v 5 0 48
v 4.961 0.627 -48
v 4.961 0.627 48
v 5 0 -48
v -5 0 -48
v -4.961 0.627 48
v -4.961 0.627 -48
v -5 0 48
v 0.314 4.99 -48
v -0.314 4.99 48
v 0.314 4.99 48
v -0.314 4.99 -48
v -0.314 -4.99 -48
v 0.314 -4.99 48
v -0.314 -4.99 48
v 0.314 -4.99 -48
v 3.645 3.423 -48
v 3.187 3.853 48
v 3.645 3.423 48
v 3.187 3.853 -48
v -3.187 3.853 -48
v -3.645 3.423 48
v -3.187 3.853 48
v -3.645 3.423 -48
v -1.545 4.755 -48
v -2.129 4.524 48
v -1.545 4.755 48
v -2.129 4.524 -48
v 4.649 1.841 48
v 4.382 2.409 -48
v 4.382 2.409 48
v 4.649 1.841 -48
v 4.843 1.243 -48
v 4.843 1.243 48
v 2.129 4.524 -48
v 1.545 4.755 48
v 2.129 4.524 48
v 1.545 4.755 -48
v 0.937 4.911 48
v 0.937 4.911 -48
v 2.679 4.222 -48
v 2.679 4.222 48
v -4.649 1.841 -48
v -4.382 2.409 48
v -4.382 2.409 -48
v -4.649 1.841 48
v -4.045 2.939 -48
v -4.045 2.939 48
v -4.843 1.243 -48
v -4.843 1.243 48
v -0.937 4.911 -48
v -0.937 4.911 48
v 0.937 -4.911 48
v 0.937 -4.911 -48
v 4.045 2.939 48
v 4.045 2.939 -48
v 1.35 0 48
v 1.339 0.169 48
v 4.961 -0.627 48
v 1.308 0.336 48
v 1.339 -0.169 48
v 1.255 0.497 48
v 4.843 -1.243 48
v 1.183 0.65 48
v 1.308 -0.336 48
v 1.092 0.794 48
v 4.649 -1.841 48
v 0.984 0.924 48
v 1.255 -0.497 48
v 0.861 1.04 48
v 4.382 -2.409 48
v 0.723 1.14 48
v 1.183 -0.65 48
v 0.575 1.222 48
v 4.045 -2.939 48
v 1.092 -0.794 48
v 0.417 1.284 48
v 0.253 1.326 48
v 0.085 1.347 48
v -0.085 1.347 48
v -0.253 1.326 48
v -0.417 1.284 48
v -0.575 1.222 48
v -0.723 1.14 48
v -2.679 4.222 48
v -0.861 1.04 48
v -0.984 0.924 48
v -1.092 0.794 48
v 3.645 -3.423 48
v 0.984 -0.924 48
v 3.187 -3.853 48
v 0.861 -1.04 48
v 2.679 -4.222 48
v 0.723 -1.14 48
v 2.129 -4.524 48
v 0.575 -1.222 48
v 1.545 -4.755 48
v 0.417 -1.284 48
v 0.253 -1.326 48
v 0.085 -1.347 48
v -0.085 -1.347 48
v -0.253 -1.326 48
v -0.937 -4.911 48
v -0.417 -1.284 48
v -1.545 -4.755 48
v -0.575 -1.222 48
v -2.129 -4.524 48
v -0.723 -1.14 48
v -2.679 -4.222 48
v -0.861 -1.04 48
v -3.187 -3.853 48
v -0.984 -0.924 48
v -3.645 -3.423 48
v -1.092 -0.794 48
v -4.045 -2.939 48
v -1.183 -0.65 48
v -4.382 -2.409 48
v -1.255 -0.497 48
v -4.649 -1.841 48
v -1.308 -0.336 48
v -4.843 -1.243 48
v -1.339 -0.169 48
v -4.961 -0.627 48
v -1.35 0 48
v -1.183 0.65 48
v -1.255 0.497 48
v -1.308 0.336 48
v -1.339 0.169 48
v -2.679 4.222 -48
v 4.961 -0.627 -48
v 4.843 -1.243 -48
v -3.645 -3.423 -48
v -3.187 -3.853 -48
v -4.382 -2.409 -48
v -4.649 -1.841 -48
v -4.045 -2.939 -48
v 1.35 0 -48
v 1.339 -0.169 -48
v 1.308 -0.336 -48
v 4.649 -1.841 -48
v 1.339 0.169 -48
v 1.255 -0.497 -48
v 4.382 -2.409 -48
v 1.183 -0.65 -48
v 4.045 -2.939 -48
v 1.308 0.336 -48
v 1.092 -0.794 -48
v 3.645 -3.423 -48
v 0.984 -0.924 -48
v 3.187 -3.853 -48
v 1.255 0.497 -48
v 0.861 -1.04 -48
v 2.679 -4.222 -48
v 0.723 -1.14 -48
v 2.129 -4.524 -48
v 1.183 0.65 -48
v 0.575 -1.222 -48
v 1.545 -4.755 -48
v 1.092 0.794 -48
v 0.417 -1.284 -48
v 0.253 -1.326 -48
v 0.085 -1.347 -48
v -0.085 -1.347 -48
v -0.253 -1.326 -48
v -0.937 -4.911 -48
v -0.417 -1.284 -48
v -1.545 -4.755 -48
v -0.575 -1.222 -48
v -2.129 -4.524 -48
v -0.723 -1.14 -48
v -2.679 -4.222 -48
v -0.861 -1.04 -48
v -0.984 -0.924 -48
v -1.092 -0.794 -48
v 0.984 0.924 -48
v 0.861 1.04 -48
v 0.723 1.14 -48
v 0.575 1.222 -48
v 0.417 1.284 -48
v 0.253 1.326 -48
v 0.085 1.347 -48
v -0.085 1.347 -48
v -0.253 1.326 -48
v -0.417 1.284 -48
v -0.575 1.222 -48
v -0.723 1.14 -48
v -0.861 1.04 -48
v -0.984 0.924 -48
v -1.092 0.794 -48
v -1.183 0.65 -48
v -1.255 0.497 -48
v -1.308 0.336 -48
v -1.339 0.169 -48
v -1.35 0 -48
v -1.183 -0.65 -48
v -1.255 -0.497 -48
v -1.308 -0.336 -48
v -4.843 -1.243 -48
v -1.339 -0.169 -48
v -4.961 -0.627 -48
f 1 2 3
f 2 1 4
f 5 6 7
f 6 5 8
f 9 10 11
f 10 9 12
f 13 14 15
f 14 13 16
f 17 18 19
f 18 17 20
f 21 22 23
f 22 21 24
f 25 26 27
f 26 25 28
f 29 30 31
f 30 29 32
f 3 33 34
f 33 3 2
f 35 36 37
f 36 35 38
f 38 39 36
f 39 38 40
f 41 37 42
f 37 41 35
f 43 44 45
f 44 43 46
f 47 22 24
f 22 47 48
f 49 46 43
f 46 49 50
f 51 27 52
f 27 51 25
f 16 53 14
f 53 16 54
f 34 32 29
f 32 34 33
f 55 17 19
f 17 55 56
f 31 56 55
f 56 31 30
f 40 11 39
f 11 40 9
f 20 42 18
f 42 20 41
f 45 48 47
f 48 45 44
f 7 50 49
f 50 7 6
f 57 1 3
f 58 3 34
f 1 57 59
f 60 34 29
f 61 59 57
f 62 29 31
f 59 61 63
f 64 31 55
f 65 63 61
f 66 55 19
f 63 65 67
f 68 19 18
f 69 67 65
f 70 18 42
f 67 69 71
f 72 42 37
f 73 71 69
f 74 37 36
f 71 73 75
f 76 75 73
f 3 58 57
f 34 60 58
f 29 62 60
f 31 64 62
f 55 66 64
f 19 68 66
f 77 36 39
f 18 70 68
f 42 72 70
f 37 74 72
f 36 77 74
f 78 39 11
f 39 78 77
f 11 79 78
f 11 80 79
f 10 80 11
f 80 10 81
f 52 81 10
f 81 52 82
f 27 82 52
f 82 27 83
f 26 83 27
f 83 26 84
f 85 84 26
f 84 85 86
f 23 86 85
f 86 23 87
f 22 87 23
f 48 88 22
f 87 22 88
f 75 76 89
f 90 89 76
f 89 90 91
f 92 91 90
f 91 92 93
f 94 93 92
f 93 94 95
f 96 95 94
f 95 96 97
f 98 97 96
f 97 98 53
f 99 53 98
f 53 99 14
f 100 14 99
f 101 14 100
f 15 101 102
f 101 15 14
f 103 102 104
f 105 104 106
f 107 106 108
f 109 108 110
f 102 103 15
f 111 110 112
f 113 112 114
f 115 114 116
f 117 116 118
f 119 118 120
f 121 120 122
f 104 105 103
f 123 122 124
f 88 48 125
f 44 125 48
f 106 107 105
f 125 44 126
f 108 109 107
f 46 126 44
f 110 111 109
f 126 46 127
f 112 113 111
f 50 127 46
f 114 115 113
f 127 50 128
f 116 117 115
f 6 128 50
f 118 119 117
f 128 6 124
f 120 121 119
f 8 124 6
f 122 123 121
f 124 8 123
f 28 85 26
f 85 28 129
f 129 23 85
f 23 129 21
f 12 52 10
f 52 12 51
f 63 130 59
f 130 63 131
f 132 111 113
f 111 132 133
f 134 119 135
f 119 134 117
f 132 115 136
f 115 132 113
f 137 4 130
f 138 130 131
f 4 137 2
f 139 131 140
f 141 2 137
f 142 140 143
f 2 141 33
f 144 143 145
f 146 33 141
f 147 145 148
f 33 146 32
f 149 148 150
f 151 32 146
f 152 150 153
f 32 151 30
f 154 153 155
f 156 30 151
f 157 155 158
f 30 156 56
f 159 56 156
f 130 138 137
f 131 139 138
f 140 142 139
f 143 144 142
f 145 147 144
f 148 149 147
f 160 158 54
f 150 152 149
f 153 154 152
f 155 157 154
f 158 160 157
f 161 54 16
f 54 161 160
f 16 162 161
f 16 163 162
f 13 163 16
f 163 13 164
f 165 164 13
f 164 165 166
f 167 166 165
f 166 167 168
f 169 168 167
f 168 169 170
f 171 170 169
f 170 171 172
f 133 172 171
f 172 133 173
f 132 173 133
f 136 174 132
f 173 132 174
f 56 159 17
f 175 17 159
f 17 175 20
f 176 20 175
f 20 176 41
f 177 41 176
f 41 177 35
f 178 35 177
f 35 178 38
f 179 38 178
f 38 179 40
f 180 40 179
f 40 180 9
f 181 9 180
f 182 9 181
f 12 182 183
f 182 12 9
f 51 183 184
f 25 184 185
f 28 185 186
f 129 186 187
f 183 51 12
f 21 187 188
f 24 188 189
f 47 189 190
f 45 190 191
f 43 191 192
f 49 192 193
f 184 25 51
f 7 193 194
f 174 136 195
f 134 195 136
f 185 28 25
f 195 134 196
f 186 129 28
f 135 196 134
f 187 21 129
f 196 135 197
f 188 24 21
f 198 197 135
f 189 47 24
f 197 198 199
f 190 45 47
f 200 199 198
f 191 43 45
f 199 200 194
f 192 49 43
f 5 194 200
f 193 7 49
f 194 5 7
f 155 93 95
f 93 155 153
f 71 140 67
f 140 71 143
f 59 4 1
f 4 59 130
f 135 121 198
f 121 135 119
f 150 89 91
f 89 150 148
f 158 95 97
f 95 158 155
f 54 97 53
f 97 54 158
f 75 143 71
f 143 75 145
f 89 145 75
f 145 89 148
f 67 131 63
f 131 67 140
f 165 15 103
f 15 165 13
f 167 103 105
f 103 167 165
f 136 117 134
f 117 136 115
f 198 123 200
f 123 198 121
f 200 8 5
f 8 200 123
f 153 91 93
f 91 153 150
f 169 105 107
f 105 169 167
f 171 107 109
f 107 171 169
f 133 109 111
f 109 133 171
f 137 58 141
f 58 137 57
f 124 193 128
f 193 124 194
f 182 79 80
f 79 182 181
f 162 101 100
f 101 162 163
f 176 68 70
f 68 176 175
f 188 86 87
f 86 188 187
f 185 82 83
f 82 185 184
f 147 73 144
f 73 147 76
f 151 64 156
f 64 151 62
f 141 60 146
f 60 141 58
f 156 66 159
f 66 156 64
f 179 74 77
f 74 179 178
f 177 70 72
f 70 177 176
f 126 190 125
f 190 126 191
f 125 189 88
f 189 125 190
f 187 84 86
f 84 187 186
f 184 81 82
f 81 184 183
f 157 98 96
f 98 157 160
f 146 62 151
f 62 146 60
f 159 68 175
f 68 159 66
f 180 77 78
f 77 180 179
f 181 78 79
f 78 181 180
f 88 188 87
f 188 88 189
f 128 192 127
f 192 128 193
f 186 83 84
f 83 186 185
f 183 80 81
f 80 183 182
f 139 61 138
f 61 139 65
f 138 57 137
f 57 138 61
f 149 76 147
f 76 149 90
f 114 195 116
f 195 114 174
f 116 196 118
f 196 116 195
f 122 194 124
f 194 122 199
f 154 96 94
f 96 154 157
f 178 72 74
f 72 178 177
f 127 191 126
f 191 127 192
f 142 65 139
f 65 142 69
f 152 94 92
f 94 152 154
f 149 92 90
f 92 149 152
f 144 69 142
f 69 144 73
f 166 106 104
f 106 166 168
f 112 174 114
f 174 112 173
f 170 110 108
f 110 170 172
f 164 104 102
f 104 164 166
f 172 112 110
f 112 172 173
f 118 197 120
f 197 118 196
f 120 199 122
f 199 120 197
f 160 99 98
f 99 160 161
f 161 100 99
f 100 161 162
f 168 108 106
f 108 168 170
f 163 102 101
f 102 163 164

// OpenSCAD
$fn = 50;


difference() {
	union() {
		translate(v = [0, 0, -48.0000000000]) {
			cylinder(h = 96, r = 5.0000000000);
		}
	}
	union() {
		translate(v = [0, 0, -100.0000000000]) {
			cylinder(h = 200, r = 1.3500000000);
		}
	}
}
